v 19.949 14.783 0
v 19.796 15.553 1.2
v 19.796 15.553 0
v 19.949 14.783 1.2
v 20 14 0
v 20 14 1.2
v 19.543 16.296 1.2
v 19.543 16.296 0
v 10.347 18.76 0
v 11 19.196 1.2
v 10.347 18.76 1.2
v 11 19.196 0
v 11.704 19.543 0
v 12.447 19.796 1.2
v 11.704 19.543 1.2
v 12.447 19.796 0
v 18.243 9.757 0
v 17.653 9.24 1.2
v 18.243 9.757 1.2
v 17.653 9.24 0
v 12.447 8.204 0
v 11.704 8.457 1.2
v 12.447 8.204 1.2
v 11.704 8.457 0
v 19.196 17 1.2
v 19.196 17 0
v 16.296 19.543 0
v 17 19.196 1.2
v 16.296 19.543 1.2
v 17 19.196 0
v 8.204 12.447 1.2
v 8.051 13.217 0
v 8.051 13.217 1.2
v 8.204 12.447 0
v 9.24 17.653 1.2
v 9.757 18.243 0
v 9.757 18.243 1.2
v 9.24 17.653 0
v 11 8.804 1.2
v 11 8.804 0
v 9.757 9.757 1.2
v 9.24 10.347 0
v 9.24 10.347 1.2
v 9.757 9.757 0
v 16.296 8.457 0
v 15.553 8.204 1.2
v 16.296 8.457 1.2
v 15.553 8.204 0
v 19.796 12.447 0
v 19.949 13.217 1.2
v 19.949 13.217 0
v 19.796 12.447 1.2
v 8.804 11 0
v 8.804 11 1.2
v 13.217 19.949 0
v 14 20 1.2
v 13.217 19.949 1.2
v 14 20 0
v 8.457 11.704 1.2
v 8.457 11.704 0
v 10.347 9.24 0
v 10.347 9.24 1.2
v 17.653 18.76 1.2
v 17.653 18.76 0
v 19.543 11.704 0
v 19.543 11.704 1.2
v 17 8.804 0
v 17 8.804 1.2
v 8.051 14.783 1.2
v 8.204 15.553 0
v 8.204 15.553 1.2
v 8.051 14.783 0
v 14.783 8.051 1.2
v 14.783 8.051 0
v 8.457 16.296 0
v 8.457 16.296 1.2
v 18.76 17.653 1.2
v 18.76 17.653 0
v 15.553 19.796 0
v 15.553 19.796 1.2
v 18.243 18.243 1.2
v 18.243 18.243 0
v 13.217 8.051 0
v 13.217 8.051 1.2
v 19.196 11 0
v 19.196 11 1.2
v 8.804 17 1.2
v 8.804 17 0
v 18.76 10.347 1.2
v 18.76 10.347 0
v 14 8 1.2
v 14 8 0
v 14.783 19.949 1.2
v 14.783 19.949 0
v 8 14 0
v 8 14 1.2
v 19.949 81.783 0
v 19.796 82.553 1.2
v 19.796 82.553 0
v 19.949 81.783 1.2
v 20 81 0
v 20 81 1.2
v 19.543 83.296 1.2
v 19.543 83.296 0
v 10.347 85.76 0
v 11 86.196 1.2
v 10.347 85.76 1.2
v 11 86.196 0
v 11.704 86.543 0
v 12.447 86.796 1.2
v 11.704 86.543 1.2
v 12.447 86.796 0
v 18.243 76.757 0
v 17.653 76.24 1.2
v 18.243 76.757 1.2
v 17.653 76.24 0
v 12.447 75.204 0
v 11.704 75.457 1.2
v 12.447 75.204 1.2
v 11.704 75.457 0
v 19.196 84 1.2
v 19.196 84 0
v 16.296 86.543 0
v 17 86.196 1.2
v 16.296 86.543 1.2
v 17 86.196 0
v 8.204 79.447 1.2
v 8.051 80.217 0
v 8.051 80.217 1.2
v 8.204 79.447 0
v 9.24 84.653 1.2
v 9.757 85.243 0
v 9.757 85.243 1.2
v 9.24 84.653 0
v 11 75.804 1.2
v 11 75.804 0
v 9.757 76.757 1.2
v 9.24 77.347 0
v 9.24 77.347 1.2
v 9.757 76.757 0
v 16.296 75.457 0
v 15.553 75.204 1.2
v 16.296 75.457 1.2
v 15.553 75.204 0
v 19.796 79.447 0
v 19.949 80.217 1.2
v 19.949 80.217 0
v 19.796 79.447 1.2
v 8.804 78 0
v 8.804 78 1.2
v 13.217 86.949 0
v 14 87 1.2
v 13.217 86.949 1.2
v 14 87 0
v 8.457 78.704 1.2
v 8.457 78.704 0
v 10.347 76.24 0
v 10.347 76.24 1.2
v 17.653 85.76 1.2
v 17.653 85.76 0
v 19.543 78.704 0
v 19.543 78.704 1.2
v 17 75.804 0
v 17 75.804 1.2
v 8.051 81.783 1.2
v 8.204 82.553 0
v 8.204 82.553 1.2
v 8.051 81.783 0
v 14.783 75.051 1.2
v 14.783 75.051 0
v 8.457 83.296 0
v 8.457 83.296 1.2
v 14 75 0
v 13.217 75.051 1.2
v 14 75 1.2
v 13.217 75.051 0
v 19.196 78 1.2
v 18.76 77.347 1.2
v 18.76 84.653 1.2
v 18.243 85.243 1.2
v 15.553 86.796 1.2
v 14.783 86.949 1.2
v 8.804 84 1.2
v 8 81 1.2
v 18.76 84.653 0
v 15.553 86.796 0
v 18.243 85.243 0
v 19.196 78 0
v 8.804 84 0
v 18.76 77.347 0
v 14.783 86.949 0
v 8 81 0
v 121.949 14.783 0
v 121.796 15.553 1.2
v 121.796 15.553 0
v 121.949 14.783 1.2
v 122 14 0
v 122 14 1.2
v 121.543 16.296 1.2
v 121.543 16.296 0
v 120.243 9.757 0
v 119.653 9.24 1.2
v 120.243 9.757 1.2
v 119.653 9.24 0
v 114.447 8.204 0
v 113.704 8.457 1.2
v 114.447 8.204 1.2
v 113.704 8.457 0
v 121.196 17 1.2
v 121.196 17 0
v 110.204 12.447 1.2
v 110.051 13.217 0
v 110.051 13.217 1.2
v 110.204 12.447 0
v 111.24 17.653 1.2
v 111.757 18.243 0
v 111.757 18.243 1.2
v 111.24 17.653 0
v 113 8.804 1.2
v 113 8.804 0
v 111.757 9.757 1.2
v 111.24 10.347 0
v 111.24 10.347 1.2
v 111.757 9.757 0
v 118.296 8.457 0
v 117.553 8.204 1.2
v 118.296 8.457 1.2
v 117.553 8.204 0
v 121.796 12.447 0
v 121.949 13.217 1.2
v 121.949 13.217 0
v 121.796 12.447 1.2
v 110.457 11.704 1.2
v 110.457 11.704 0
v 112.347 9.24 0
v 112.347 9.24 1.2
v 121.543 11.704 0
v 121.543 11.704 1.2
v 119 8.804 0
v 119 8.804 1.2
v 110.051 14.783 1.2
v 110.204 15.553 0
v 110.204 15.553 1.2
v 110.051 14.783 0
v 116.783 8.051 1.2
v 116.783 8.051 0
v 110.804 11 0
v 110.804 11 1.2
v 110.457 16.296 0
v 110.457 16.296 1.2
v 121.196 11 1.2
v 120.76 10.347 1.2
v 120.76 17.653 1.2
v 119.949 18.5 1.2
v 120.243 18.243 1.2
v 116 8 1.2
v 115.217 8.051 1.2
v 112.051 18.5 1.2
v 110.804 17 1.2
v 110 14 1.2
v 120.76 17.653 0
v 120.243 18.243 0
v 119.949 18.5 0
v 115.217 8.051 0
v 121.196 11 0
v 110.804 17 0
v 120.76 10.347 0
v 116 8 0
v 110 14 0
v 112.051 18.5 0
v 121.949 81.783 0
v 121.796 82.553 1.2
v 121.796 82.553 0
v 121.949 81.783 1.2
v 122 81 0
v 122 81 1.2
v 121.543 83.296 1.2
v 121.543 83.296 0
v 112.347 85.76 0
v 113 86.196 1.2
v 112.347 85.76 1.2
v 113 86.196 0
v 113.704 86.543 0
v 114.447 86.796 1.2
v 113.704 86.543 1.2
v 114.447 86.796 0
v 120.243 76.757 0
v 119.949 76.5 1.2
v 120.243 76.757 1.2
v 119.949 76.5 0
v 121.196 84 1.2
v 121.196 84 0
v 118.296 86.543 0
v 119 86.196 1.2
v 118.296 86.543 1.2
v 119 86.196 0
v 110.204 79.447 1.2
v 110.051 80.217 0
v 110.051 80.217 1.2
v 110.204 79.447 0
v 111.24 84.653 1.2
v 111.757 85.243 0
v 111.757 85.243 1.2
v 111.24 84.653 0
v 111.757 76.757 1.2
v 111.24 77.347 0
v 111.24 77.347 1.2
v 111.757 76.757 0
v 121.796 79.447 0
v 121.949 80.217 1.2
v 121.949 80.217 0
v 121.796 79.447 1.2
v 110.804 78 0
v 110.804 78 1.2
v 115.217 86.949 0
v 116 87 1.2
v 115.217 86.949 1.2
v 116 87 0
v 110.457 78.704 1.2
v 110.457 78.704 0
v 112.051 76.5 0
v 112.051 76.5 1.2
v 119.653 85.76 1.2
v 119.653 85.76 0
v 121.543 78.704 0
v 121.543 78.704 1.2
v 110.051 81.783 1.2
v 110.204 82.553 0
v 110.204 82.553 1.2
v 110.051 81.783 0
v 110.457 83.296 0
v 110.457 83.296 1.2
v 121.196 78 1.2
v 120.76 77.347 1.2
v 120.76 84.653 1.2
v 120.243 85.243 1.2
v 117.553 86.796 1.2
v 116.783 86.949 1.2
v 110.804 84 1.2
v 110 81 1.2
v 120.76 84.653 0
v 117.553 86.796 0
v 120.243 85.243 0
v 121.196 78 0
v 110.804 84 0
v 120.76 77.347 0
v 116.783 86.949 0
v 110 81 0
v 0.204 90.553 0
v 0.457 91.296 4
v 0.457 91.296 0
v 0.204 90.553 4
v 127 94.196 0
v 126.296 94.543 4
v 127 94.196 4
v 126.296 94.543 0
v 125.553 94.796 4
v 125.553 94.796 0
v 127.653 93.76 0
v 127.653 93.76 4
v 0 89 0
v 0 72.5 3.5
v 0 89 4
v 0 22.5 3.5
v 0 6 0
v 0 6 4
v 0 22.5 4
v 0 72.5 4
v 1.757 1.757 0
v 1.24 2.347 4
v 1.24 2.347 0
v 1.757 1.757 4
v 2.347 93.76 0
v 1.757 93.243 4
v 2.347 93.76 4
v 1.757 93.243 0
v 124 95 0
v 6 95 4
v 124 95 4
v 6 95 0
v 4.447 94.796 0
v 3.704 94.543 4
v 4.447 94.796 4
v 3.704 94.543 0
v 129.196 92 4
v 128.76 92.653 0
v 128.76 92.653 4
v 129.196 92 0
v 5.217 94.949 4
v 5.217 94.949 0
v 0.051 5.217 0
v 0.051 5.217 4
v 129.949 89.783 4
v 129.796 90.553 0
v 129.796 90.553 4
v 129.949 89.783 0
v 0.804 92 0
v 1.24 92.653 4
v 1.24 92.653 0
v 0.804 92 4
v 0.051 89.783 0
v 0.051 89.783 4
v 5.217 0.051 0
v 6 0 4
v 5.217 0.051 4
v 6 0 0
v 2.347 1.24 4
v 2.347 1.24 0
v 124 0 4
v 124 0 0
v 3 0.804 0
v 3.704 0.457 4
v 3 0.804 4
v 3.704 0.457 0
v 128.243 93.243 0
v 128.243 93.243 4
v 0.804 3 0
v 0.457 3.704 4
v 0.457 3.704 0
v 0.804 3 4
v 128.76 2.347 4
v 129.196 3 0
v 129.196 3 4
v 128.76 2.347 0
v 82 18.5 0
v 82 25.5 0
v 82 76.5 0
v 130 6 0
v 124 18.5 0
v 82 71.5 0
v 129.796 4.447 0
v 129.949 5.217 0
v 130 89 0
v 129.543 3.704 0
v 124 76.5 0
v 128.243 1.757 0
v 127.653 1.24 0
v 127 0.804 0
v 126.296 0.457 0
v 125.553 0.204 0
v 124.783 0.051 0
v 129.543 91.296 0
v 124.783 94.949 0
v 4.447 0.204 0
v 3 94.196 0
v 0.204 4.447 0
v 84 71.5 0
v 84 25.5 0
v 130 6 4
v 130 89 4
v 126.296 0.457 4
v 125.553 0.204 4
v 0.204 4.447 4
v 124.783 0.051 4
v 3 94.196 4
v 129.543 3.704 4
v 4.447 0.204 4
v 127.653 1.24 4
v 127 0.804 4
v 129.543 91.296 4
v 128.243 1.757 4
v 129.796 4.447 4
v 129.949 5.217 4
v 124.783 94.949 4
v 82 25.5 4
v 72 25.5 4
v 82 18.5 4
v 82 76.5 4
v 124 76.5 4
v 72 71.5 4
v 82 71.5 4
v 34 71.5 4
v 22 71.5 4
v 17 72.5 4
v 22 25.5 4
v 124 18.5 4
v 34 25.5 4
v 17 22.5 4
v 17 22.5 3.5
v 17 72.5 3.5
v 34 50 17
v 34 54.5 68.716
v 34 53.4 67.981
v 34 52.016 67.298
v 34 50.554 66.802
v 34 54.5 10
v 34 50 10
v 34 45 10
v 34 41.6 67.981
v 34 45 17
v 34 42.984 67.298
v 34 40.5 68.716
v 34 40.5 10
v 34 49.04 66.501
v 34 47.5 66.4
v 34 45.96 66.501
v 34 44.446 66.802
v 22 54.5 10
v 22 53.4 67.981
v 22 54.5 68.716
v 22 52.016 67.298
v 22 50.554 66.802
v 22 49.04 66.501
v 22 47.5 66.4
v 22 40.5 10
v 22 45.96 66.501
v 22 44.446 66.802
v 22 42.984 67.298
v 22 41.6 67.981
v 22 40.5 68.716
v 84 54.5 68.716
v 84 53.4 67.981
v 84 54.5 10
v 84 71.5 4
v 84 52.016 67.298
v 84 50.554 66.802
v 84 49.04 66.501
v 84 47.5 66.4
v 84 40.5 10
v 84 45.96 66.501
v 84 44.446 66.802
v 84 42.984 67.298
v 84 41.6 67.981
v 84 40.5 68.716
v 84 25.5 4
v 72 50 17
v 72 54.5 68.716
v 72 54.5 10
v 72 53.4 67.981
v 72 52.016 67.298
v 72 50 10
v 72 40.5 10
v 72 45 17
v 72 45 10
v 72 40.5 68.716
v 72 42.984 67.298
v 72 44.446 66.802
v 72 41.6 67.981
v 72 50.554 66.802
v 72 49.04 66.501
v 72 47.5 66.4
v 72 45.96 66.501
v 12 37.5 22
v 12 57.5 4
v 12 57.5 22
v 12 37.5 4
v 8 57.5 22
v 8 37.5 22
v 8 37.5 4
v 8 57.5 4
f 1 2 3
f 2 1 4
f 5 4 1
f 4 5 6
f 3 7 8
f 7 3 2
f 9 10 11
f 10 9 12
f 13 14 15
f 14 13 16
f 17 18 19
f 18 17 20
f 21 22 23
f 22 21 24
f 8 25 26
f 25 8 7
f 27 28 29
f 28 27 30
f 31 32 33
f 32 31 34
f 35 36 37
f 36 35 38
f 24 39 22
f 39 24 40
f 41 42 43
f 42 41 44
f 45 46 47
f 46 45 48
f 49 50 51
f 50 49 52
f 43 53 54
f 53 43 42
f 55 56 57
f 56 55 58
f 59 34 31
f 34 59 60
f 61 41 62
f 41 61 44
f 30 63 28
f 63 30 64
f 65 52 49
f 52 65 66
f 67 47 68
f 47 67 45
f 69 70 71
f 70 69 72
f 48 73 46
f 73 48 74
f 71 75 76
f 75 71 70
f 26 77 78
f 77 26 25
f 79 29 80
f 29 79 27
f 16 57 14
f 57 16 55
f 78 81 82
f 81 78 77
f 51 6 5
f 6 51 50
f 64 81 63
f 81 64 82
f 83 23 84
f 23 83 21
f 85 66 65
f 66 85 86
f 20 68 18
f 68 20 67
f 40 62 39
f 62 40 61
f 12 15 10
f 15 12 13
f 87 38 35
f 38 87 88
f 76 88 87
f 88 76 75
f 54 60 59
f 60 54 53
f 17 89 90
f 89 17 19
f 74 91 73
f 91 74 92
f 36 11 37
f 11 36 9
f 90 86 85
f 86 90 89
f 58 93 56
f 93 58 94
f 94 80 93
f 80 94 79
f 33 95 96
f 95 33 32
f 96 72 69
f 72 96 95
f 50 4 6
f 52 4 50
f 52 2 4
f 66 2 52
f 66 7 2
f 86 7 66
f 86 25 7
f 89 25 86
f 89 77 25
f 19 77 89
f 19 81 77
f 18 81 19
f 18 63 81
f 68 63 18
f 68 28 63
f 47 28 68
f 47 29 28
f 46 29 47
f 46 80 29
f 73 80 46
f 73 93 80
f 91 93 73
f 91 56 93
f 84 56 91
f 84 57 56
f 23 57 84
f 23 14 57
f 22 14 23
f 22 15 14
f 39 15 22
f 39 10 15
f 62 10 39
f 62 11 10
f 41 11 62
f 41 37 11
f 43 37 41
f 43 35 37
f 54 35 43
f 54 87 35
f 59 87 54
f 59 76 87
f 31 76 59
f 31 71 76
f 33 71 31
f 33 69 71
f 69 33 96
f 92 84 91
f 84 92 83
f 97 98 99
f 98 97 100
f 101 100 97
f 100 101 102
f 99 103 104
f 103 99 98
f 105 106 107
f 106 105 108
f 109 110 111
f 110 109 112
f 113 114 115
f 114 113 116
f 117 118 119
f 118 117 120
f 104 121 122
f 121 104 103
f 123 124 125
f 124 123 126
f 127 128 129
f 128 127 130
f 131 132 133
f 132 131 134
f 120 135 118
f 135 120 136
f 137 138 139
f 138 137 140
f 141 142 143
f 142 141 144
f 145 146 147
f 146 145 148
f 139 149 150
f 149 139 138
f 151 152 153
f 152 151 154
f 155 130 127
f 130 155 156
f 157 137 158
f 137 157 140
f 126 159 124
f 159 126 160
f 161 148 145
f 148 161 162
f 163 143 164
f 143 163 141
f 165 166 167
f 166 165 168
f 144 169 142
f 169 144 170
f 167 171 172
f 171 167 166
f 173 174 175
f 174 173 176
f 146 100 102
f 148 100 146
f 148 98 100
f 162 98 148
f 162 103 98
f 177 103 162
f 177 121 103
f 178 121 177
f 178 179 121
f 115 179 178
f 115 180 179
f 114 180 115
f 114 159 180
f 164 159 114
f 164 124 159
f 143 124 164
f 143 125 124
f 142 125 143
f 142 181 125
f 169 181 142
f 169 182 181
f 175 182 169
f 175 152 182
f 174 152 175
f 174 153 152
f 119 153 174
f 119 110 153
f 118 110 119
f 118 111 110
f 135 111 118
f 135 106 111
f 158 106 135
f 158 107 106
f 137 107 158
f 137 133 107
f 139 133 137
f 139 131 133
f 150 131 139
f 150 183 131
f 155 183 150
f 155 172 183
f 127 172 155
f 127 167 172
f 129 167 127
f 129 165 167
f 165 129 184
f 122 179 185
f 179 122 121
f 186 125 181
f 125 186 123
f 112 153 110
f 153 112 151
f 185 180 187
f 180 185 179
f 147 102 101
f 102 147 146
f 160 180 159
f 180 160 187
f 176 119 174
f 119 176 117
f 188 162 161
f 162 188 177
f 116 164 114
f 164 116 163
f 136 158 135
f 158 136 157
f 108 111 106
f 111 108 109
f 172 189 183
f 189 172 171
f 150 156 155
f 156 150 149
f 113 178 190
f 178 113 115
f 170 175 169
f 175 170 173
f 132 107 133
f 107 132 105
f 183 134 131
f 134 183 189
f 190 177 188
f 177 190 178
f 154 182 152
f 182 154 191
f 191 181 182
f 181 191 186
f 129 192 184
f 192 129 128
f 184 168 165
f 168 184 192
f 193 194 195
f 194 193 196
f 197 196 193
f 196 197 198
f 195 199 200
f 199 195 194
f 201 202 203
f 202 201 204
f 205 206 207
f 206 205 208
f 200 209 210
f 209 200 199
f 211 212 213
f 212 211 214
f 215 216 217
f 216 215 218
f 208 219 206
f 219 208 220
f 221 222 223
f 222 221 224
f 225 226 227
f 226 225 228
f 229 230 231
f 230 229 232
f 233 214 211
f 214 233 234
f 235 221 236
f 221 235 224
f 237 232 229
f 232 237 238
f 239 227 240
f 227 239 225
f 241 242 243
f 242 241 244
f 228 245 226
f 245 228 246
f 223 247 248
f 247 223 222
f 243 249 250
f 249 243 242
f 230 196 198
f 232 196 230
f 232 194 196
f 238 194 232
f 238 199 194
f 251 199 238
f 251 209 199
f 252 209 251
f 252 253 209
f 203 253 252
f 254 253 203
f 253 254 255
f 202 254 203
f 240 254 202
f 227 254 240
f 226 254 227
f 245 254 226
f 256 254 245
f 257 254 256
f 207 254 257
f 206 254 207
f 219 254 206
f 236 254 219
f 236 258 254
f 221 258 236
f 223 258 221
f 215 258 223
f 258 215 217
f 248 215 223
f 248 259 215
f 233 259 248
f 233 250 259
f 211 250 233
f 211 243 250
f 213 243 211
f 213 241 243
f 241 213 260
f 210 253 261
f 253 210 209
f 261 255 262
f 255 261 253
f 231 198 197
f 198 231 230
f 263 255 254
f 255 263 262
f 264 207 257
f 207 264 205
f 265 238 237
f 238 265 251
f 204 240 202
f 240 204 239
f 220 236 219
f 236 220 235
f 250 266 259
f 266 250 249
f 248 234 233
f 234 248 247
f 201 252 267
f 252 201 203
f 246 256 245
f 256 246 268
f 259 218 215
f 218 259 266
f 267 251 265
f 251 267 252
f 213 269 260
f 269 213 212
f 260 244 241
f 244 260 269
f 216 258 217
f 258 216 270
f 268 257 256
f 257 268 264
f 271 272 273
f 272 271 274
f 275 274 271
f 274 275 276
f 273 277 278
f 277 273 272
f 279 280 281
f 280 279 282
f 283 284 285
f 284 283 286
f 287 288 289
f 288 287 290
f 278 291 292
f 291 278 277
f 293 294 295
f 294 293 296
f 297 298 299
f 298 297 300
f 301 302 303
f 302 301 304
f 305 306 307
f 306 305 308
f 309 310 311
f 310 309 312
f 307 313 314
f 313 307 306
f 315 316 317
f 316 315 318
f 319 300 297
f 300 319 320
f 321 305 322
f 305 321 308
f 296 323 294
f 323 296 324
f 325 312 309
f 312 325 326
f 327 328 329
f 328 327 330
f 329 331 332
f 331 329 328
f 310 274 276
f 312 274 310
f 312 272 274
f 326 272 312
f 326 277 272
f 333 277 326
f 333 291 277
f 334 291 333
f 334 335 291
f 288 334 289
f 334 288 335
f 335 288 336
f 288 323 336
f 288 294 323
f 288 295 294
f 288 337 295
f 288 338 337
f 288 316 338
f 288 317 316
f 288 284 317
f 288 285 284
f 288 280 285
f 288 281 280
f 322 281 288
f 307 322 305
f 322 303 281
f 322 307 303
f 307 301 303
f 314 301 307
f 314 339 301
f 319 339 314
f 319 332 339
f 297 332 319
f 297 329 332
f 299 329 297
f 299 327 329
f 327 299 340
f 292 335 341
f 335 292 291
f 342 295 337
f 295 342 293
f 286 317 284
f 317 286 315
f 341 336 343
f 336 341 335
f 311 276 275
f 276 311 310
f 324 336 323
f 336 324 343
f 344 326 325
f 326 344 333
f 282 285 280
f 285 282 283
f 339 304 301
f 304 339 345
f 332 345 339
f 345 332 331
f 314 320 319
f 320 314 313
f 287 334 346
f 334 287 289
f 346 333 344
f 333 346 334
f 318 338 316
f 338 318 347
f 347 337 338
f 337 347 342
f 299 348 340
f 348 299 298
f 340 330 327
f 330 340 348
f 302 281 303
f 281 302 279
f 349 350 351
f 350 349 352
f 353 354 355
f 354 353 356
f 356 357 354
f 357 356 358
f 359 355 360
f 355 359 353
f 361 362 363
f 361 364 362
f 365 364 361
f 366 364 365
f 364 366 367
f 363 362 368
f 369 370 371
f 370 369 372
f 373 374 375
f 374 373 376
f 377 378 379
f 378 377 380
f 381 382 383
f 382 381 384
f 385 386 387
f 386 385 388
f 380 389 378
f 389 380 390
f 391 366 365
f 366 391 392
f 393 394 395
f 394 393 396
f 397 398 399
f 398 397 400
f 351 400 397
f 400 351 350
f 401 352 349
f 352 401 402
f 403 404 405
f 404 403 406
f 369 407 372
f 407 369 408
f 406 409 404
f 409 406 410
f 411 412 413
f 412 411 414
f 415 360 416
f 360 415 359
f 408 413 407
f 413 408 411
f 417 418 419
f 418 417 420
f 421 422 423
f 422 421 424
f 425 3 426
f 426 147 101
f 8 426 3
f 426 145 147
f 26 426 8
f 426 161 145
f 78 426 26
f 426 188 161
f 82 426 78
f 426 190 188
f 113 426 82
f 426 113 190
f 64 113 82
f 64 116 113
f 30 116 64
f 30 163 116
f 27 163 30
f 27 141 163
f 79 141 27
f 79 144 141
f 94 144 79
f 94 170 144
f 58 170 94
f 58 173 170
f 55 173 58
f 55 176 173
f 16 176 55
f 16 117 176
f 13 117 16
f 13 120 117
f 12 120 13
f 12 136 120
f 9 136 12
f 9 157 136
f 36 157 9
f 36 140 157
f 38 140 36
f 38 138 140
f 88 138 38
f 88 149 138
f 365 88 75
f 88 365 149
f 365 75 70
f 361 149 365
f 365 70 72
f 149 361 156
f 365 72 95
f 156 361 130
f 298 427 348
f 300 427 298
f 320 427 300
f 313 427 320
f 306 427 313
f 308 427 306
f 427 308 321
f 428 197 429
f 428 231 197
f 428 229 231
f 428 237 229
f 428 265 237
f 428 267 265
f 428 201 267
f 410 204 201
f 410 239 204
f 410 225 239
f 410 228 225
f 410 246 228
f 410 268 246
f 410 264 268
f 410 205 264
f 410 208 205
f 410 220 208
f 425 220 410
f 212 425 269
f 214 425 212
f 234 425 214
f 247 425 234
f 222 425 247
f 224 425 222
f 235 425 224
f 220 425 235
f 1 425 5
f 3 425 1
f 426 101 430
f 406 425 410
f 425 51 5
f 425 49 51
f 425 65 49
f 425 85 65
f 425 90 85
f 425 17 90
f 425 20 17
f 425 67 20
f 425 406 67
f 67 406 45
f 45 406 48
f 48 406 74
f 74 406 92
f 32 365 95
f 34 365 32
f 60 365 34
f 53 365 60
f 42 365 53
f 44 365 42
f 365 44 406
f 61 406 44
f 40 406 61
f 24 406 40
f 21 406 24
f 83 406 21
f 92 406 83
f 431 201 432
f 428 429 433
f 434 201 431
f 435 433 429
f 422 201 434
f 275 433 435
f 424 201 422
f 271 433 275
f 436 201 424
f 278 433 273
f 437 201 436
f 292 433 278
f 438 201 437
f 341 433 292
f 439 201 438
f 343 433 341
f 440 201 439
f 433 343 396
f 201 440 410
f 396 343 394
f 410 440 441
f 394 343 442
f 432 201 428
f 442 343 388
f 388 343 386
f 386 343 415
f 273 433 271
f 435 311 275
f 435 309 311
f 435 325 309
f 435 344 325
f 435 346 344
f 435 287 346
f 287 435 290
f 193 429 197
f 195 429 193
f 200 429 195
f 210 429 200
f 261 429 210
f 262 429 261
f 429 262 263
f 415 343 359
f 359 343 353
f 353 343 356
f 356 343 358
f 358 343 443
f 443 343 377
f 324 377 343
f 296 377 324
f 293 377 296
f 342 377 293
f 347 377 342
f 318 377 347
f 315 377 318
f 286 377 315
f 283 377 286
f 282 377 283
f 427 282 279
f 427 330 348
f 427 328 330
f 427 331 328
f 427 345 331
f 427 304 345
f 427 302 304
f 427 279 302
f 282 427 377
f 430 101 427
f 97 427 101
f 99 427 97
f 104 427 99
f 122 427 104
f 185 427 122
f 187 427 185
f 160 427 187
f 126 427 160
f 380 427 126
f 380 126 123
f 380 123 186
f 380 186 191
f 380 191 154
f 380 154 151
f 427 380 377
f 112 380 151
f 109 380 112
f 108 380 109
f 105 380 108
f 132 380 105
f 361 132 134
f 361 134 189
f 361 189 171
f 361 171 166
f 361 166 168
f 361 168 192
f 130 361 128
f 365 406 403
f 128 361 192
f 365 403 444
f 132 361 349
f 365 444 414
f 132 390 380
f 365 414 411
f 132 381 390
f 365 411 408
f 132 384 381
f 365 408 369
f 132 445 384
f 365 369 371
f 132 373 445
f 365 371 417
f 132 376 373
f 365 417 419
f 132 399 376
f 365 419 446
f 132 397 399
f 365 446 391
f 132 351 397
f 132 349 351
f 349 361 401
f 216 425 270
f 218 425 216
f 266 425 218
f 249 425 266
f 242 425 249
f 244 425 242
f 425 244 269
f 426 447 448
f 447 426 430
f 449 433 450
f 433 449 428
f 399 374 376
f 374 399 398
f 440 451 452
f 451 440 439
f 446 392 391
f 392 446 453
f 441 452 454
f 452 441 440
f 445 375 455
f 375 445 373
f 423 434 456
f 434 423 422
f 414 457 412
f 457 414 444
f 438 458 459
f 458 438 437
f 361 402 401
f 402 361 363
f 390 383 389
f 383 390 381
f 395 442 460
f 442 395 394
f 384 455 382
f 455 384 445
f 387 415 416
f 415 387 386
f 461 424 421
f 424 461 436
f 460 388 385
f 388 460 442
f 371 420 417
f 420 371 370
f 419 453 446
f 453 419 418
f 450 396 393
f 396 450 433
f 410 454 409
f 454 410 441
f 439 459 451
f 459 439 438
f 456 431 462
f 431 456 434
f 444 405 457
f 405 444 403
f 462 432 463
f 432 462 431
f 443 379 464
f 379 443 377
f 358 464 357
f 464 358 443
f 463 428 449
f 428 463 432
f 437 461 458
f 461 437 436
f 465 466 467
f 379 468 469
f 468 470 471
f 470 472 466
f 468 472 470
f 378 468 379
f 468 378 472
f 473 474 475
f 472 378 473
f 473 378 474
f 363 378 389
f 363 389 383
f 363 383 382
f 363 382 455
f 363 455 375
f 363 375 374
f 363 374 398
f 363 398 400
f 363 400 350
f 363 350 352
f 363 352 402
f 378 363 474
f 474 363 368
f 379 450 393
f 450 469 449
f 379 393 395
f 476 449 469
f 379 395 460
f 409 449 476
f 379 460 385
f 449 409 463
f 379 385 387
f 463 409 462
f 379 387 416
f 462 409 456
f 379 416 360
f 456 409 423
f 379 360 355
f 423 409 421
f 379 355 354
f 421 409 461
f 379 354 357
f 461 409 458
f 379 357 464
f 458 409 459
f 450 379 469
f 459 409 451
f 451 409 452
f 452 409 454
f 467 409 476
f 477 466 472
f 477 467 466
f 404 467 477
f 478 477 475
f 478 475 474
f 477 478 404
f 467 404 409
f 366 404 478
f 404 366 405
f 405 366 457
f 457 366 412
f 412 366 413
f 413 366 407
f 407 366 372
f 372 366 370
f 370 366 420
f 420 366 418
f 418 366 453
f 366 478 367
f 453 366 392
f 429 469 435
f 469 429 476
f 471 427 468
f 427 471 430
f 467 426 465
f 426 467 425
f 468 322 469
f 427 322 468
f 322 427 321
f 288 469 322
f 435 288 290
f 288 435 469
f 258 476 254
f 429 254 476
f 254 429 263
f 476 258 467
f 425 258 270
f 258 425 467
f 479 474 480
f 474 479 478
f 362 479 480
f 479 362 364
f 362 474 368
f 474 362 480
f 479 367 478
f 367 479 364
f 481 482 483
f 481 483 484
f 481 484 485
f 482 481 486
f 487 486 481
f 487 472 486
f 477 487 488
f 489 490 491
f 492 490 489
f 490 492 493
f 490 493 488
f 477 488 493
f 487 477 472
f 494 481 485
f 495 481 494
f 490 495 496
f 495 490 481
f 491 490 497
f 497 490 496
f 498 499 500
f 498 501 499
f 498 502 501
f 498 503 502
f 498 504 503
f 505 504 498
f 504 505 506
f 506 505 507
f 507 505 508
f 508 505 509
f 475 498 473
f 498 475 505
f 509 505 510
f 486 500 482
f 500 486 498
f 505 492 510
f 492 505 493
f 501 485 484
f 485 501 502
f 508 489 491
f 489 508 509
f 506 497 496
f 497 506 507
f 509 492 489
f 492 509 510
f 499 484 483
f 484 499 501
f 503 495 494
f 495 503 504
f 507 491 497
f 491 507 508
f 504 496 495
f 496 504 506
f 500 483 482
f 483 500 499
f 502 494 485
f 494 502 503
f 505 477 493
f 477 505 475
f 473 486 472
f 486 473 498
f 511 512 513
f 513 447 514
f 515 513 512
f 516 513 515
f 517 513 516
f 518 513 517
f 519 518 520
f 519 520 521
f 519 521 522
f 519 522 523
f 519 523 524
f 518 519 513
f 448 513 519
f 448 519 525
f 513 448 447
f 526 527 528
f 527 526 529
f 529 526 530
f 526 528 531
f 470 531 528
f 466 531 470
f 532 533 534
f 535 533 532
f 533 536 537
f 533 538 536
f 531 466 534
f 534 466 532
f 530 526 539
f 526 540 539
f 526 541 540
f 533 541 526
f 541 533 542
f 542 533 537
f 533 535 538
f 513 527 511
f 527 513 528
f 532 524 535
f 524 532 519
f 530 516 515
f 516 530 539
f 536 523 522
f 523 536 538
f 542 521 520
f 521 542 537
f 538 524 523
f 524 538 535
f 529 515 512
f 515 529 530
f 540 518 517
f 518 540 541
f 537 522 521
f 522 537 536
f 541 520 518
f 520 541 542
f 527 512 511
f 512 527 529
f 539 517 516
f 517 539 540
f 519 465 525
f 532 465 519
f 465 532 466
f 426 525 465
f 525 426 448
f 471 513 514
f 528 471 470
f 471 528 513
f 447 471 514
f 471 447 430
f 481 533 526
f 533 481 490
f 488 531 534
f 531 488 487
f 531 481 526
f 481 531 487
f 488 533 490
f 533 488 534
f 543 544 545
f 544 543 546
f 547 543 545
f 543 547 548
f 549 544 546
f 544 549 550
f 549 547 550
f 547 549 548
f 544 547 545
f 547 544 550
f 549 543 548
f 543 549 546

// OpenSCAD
// file: lib/constants.scad
// ============================================================================
// DIY Supplement Dispenser – shared dimensions (Phase 1 v0.2)
// Source of truth: docs/PHASE1_DESIGN_HANDOFF.md (geometry locks)
// Units: millimetres.
//
// v0.2 stack-up fix:
//   Coupler lives in motor-end bore zone; flights shorter so free end
//   can close with a root-diameter bushing. Assemble auger from free end.
// ============================================================================

// ----- Material / print -----
WALL_T           = 2.2;
CLEARANCE_LOOSE  = 0.4;
CLEARANCE_SLIDE  = 0.25;
CLEARANCE_PRESS  = 0.05;

// ----- Hopper -----
HOPPER_TOP_ID      = 90;
HOPPER_BOT_ID      = 22;
HOPPER_ANGLE_DEG   = 65;
HOPPER_CYL_H       = 40;
HOPPER_WALL        = 2.2;
HOPPER_FLANGE_W    = 7;
HOPPER_FLANGE_T    = 3.5;
HOPPER_BOLT_CIRCLE = 100;
HOPPER_M3_D        = 3.3;
// Cone height: (45 - 11) * tan(65°) ≈ 72.9 mm
HOPPER_CONE_H      = (HOPPER_TOP_ID/2 - HOPPER_BOT_ID/2) * tan(HOPPER_ANGLE_DEG);
// Approximate internal volume (ml): frustum + cylinder ≈ 200 + 254 ≈ 455 ml
HOPPER_SPIGOT_H    = 8;
HOPPER_SPIGOT_OD   = HOPPER_BOT_ID + 2*HOPPER_WALL;
HOPPER_BOT_FLANGE_OD = 42;
HOPPER_BOT_FLANGE_T  = 3.5;
HOPPER_BOT_BOLT_CIRCLE = 34;

// ----- Auger screw (stack-up: coupler zone + flights + tip ≤ barrel) -----
AUGER_OD       = 16.8;
AUGER_ROOT_D   = 8.5;
AUGER_PITCH    = 11;
// Active flights shorter so coupler zone + tip fit in 70 mm barrel
AUGER_LENGTH   = 48;    // was 70 — did not fit with coupler
AUGER_FLIGHT_T = 1.6;
AUGER_SHAFT_D  = 5.0;
AUGER_COUPLER_L = 14;
AUGER_COUPLER_OD = 12;
AUGER_SETSCREW_D = 3.0;
AUGER_TIP_L    = 6;
// Coupler shoulder after coupler body
AUGER_SHOULDER_L = 2.5;

// ----- Barrel / housing -----
BARREL_ID      = 18.0;
BARREL_OD      = BARREL_ID + 2*WALL_T;
BARREL_LENGTH  = 70;
// Motor-end coupler pocket (enlarged bore so 12 mm coupler seats inside barrel)
COUPLER_BORE_D = AUGER_COUPLER_OD + 1.0;  // ~13 mm
COUPLER_ZONE_L = AUGER_COUPLER_L + AUGER_SHOULDER_L + 1; // ~17.5 mm
// Free-end bushing (root + clearance) — CLOSES powder path
BUSHING_ID     = AUGER_ROOT_D + 0.9;  // ~9.4 mm — tip only, not full barrel ID
BUSHING_DEPTH  = 6;
INLET_ID       = HOPPER_BOT_ID;
INLET_BORE_H   = 12;
OUTLET_ID      = 16;
OUTLET_L       = 12;
OUTLET_WALL    = 2.0;
// Side access for M3 set-screw on coupler (radial hole in housing)
SETSCREW_ACCESS_D = 4.0;

// ----- NEMA17 -----
NEMA17_FACE        = 42;
NEMA17_HOLE_SPACE  = 31;
NEMA17_HOLE_D      = 3.3;
NEMA17_PILOT_D     = 22.5;
NEMA17_PLATE_T     = 4.0;
// Shaft pass-through only (coupler does NOT pass the plate)
NEMA17_SHAFT_CLEAR = 6.0;

// ----- Vibration motor -----
VIBE_MOTOR_D   = 12;
VIBE_MOTOR_H   = 3.2;
VIBE_WIRE_W    = 3.5;
VIBE_WIRE_H    = 1.5;

// ----- Load cell / scale platform -----
// Common bar cell ~80×12.7; some Amazon kits are 76×13.5 — verify yours
LOADCELL_L     = 80;
LOADCELL_W     = 12.7;
LOADCELL_H     = 12.7;
LOADCELL_HOLE_SPACE = 15;
LOADCELL_HOLE_D     = 4.2;
CUP_RECESS_D   = 70;
CUP_RECESS_H   = 3;

// ----- Test stand -----
STAND_OUTLET_CLEARANCE = 55;
STAND_FOOT_T   = 4;
STAND_POST_W   = 14;

// ----- Lid -----
LID_LIP_H      = 6;
LID_LIP_CLEAR  = 0.35;

PART_VERSION   = "v02";
// main file
// ============================================================================
// test_stand_v02 – cradles account for NEMA plate, inlet flange, endcap bulk
// Two U-cradles under bare barrel zones; open bay under outlet for cup/scale.
// ============================================================================

include <lib/constants.scad>

barrel_od     = BARREL_OD;
outlet_clear  = STAND_OUTLET_CLEARANCE;
post_w        = STAND_POST_W;
base_t        = STAND_FOOT_T;
// Axis height: outlet tip clear + nozzle stick-out + radius
barrel_axis_z = outlet_clear + OUTLET_L + barrel_od/2;
// Longer base for plate + endcap + inlet flange footprint
base_x        = 130;
base_y        = 95;
// Cradle under bare barrel: after plate (~4 mm) and before endcap
// Housing: plate at x=-4..0, barrel 0..70, endcap 70..76, inlet flange at x≈22
// Cradle 1: motor-side barrel after plate, before inlet flange (x ~ 8–12 in housing)
// Cradle 2: free-end side before outlet boss (x ~ 50–55)
// Stand local X: 0 at motor end of base
post1_x       = 28;   // under barrel near coupler zone (past plate)
post2_x       = 78;   // under barrel before outlet, past inlet
cradle_depth  = 12;
// Wider cradle radius to tolerate inlet throat nearby (loose hold)
cradle_d      = barrel_od + 1.2;
foot_d        = 12;
foot_recess_h = 1.2;

$fn = 48;

module base_plate() {
    difference() {
        hull() {
            for (x = [6, base_x - 6], y = [6, base_y - 6])
                translate([x, y, 0])
                    cylinder(d = 12, h = base_t);
        }
        for (x = [14, base_x - 14], y = [14, base_y - 14])
            translate([x, y, -0.05])
                cylinder(d = foot_d, h = foot_recess_h + 0.05);
        // Front pass-through for scale platform + cup
        translate([base_x - 48, (base_y - 58)/2, -0.1])
            cube([42, 58, base_t + 0.2]);
        // Motor plate clearance notch at rear (NEMA 42 face hangs down)
        translate([-1, (base_y - 50)/2, base_t - 0.5])
            cube([18, 50, 2]);
    }
}

module post(x) {
    post_h = barrel_axis_z + barrel_od/2 + 6;
    y0 = (base_y - post_w) / 2;
    difference() {
        translate([x - cradle_depth/2, y0, 0])
            cube([cradle_depth, post_w, post_h]);
        translate([x - cradle_depth/2 - 0.1, base_y/2, barrel_axis_z])
            rotate([0, 90, 0])
                cylinder(d = cradle_d, h = cradle_depth + 0.2);
        translate([x - cradle_depth/2 - 0.1, base_y/2 - cradle_d/2, barrel_axis_z])
            cube([cradle_depth + 0.2, cradle_d, barrel_od + 4]);
        translate([x, base_y/2 - post_w/2 - 0.1, barrel_axis_z + barrel_od/2 + 2])
            rotate([-90, 0, 0])
                cylinder(d = 3.3, h = post_w + 0.2, $fn = 16);
    }
    for (side = [-1, 1])
        hull() {
            translate([x - cradle_depth/2, y0 + (side > 0 ? post_w - 2 : 0), 0])
                cube([cradle_depth, 2, 10]);
            translate([x - cradle_depth/2, y0 + post_w/2 + side * 22, 0])
                cube([cradle_depth, 2, base_t]);
        }
}

module cross_brace() {
    y0 = (base_y - 5) / 2;
    translate([post1_x, y0, 10])
        cube([post2_x - post1_x, 5, 7]);
}

// Side stop for NEMA plate (prevents sliding toward free end)
module motor_stop() {
    translate([8, (base_y - 20)/2, base_t])
        cube([4, 20, 18]);
}

module test_stand() {
    base_plate();
    post(post1_x);
    post(post2_x);
    cross_brace();
    motor_stop();
}

test_stand();

echo("barrel axis Z =", barrel_axis_z, " cradle D =", cradle_d);
echo("posts at", post1_x, post2_x, " base", base_x, "x", base_y);
